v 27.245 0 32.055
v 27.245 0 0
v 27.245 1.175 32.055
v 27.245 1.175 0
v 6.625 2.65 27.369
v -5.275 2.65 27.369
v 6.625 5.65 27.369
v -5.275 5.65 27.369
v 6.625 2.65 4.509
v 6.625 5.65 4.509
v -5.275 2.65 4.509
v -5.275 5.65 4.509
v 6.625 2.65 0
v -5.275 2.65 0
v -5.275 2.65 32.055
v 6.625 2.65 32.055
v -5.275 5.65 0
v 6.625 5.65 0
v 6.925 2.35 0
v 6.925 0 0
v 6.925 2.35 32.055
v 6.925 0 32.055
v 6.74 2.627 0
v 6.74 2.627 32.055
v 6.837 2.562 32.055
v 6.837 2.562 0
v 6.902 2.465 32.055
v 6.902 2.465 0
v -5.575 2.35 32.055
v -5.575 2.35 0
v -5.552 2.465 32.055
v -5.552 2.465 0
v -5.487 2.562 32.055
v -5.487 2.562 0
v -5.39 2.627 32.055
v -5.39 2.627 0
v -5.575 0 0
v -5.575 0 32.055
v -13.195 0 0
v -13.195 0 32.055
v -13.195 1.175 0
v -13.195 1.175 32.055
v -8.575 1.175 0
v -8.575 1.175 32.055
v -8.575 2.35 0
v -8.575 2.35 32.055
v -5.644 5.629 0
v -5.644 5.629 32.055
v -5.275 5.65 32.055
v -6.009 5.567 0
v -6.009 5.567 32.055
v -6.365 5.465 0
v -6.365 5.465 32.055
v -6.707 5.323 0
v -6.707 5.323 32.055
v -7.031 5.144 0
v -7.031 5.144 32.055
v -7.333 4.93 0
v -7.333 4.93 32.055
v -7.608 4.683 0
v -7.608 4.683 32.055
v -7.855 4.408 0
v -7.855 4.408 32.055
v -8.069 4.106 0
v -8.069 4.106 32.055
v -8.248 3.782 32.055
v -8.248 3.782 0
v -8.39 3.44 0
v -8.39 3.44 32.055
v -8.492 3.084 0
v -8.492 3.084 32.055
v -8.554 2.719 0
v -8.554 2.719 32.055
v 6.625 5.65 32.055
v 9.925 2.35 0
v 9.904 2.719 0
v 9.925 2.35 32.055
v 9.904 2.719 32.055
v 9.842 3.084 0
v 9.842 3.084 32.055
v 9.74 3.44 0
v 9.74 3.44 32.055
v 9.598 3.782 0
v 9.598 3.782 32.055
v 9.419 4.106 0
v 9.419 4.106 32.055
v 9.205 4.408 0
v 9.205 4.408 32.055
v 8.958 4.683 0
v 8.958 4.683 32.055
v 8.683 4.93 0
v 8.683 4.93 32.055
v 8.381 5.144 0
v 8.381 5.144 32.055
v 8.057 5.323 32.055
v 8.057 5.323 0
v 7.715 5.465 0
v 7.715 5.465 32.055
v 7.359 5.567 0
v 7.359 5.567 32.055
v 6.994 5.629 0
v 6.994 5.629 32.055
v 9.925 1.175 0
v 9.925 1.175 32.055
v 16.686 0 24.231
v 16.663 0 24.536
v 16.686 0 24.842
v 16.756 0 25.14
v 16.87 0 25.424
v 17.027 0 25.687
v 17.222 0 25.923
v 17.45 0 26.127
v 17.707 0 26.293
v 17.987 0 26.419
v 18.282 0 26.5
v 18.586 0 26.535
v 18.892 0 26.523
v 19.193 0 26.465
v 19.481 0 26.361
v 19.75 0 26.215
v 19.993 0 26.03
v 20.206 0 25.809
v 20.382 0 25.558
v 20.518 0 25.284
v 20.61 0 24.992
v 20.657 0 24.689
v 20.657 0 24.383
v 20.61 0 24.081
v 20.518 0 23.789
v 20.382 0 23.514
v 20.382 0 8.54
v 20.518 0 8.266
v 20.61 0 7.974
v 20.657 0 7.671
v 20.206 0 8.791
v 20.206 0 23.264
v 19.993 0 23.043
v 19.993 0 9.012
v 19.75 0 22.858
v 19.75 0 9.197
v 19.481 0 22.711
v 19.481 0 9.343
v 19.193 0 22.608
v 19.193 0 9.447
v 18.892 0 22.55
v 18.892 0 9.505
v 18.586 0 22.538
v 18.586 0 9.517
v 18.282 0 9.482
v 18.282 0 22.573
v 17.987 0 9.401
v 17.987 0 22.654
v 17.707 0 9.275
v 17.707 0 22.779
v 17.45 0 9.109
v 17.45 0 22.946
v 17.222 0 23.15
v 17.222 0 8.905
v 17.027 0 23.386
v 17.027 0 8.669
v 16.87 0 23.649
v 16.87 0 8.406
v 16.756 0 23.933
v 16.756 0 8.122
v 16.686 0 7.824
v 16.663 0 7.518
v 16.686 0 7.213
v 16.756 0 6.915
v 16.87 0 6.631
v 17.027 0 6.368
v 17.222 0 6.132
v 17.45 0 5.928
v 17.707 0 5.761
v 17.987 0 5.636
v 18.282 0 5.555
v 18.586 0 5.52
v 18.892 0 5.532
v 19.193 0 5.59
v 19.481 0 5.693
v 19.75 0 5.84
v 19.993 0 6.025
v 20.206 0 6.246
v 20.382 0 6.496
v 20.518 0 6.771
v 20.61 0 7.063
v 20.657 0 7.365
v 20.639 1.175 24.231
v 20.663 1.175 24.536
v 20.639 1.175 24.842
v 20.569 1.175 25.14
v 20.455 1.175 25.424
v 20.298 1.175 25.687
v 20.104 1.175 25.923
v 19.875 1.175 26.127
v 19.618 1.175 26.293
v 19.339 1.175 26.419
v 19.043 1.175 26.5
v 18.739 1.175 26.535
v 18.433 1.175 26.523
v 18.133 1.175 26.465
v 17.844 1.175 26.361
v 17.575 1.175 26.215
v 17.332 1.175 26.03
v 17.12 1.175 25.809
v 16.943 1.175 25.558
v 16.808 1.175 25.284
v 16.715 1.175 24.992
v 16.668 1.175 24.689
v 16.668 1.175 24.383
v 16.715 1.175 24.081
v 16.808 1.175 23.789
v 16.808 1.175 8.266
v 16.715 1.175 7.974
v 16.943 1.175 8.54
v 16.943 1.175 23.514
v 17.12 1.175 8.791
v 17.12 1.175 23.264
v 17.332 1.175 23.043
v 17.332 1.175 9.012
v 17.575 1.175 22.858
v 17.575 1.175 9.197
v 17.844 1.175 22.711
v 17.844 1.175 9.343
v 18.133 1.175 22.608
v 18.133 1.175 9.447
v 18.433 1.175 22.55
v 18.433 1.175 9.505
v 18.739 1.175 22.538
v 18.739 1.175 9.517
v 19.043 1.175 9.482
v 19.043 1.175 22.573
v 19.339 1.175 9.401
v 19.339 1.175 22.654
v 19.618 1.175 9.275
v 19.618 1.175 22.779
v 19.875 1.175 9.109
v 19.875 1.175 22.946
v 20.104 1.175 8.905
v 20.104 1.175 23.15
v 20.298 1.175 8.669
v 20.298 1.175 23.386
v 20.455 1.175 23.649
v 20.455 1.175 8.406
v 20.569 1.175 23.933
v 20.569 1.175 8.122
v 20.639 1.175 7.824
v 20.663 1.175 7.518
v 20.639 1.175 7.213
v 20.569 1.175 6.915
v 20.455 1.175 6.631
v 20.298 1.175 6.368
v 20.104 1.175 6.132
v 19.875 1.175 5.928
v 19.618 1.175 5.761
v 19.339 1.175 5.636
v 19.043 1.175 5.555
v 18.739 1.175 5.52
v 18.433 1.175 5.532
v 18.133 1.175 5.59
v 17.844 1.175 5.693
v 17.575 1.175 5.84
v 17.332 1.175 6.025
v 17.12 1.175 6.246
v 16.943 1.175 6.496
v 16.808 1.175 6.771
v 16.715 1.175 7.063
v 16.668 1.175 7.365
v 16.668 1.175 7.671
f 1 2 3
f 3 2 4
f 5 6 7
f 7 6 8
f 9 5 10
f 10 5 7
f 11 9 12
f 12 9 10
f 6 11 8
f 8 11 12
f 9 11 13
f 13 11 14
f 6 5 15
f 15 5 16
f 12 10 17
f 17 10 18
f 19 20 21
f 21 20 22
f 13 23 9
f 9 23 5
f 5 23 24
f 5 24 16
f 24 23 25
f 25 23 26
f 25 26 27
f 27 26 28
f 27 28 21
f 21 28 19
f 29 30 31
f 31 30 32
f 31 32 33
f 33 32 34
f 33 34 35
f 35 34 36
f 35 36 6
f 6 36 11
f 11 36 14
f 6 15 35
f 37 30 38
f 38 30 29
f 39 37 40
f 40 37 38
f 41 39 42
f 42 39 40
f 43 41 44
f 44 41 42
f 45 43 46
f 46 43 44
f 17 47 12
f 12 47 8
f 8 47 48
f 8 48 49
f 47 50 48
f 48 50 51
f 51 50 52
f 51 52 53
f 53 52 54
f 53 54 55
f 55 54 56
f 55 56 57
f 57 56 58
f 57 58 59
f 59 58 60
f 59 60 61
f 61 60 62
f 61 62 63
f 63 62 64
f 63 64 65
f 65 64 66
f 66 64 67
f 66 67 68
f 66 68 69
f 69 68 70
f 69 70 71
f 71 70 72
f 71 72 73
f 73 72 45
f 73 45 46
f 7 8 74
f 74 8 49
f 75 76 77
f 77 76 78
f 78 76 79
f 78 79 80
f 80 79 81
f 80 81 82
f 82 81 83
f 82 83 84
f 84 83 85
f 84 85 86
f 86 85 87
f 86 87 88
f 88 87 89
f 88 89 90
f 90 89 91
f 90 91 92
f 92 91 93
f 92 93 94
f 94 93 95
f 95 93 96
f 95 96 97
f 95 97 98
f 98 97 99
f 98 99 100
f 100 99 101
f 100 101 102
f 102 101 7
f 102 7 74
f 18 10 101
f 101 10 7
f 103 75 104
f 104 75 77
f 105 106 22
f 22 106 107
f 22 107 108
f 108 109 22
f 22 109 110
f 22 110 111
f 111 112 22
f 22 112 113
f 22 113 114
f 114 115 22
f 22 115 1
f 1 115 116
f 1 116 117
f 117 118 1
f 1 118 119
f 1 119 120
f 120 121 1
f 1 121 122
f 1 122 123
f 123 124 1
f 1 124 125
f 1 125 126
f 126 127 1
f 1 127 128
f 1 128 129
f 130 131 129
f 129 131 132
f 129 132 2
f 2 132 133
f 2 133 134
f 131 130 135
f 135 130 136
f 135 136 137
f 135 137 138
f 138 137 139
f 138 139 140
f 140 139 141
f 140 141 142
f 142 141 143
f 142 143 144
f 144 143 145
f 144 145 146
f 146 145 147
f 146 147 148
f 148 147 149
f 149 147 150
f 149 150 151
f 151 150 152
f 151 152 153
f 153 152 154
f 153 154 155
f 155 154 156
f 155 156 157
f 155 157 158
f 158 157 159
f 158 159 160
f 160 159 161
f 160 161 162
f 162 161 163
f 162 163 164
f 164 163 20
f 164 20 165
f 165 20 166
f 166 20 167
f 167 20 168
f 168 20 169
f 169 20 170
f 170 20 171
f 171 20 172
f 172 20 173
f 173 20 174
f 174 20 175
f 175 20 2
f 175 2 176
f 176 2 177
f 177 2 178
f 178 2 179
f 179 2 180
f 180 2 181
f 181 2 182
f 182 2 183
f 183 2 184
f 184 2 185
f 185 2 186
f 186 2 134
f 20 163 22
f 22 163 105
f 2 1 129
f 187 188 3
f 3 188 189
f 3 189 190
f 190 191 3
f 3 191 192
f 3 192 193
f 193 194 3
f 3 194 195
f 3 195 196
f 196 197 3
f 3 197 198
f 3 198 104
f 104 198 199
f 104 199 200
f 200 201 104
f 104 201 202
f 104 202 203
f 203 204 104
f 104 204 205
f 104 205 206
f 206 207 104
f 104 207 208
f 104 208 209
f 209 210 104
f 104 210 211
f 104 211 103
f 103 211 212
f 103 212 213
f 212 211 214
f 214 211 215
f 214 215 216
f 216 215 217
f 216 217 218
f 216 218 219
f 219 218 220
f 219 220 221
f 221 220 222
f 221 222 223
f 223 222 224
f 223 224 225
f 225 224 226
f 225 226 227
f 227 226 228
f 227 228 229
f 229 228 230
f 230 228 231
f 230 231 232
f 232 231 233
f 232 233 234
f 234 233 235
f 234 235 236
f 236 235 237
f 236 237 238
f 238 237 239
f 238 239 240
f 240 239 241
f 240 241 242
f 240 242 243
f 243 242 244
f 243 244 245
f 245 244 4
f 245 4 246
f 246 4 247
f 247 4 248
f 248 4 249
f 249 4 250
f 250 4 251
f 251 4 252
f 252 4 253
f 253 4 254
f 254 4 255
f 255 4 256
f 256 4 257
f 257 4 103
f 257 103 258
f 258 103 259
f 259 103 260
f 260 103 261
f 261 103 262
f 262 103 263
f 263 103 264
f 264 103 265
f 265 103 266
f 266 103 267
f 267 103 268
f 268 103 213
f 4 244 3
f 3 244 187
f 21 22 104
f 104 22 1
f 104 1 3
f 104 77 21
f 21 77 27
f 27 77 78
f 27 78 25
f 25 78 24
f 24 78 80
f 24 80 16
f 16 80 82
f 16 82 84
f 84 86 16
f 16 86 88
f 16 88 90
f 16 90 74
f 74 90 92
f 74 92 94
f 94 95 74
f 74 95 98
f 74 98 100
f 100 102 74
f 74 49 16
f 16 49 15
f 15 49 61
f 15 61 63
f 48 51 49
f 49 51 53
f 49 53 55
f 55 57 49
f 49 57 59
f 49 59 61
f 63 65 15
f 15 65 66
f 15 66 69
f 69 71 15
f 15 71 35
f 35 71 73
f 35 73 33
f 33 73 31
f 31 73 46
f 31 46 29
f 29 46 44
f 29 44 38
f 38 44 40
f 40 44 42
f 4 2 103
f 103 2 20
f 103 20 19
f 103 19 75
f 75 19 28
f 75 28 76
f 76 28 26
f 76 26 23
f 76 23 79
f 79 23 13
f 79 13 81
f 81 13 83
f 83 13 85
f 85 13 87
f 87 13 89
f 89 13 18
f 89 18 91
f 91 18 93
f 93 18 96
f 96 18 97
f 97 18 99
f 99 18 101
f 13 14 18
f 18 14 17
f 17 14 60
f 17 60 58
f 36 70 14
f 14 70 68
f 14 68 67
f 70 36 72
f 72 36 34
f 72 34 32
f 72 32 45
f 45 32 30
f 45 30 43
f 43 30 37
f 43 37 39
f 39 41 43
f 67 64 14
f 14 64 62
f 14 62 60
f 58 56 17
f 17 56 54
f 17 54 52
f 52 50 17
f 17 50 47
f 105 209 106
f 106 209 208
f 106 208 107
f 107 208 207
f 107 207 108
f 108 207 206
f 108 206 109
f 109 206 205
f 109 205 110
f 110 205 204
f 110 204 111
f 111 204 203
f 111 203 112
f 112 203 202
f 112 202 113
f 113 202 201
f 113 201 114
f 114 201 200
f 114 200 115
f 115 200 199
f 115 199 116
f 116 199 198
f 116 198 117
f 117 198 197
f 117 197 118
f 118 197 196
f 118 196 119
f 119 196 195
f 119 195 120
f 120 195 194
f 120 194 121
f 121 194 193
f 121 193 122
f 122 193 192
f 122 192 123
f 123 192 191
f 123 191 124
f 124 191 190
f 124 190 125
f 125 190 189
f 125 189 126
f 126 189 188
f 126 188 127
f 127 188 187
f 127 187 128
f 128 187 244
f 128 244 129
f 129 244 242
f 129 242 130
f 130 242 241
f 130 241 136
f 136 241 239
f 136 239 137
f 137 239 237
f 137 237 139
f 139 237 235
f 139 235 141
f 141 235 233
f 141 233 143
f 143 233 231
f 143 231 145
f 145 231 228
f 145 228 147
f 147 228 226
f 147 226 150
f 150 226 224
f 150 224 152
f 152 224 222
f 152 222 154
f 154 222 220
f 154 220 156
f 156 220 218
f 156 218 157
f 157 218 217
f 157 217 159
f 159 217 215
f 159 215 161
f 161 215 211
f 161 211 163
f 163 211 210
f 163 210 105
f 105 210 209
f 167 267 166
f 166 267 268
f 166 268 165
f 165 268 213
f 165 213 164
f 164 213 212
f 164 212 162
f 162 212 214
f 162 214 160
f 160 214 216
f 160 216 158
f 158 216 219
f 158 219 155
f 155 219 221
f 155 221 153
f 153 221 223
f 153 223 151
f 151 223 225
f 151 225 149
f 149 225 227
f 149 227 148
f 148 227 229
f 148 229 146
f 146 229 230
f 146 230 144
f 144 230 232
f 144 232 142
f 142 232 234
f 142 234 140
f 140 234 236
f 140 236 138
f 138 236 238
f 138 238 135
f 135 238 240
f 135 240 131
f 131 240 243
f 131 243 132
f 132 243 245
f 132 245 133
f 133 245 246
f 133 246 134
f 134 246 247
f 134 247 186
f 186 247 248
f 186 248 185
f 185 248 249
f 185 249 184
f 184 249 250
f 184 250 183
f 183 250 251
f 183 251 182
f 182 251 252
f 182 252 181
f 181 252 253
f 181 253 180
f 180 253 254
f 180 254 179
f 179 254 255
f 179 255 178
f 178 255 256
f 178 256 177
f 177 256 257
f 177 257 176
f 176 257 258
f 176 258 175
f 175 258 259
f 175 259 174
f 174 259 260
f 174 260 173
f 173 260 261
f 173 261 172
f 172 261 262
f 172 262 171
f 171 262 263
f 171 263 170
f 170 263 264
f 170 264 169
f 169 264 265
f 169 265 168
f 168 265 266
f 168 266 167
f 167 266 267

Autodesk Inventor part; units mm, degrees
ref_plane "YZ Plane" through (0, 0, 0) normal (1, 0, 0) x (0, 1, 0)
ref_plane "XZ Plane" through (0, 0, 0) normal (0, 1, 0) x (-1, 0, 0)
ref_plane "XY Plane" through (0, 0, 0) normal (0, 0, 1) x (1, 0, 0)
sketch "Sketch1" plane through (0, 0, 0) normal (0, 0, 1) x (1, 0, 0)
  line L0 (-5.575, 0) -> (6.925, 0)
  line L1 (6.925, 2.35) -> (6.925, 0)
  line L2 (-5.575, 2.35) -> (-5.575, 0)
  line L3 (-5.275, 2.65) -> (6.625, 2.65)
  arc A0 (-5.275, 2.65) -> (-5.575, 2.35) centre (-5.275, 2.35) ccw
  arc A1 (6.925, 2.35) -> (6.625, 2.65) centre (6.625, 2.35) ccw
  line L4 (-5.575, 0) -> (6.925, 0)
  line L5 (-8.575, 0) -> (-8.575, 2.35)
  arc A2 (-5.275, 5.65) -> (-8.575, 2.35) centre (-5.275, 2.35) ccw
  line L6 (-5.275, 5.65) -> (6.625, 5.65)
  arc A3 (9.925, 2.35) -> (6.625, 5.65) centre (6.625, 2.35) ccw
  line L7 (9.925, 2.35) -> (9.925, 0)
  line L8 (-8.575, 0) -> (9.925, 0)
  line L9 (6.925, 1.175) -> (14.545, 1.175)
  line L10 (14.545, 1.175) -> (14.545, 0)
  line L11 (14.545, 0) -> (6.925, 0)
  line L12 (6.925, 1.175) -> (6.925, 0)
  line L13 (-5.575, 1.175) -> (-13.195, 1.175)
  line L14 (-5.575, 1.175) -> (2.045, 1.175) construction
  line L15 (-13.195, 1.175) -> (-13.195, 0)
  line L16 (-13.195, 0) -> (14.545, 0)
  point P0 (0, 0)
  point P1 (-8.575, 1.175)
  point P2 (-5.275, 2.65)
  point P3 (9.925, 1.175)
  dimension "d0" = 3
  dimension "d1" = 3
  dimension "d2" = 7.62
  dimension "d3" = 7.62
  dimension "d4" = 180
extrude "Extrusion1" add sketch "Sketch1" along normal blind 32.0548 contours L8 L5 L13 L2 | L1 L9 L7 L8 | L13 L5 A2 L6 A3 L7 L9 L1 A1 L3 A0 L2 | L16 L15 L13 L5 | L7 L9 L10 L11
sketch "Sketch2" plane through (-5.275, 5.65, 0) normal (0, 1, 0) x (1, 0, 0)
  line L0 (0, -32.0548) -> (11.9, -32.0548) projected
  line L1 (5.95, -32.0548) -> (5.95, -15.939)
  line L2 (0, 0) -> (0, -32.0548) projected
  line L3 (0, -4.509) -> (11.9, -4.509)
  line L4 (11.9, -4.509) -> (11.9, -27.369)
  line L5 (11.9, -27.369) -> (0, -27.369)
  line L6 (0, -27.369) -> (0, -4.509)
  line L7 (0, -4.509) -> (11.9, -27.369) construction
  line L8 (11.9, -4.509) -> (0, -27.369) construction
  line L9 (11.9, 0) -> (0, 0) projected
  dimension "d7" = 22.86
extrude "Extrusion2" cut sketch "Sketch2" against normal blind 32.0548 contours L2 L3 L4 L5
sketch "Sketch3" plane through (14.545, 0, 0) normal (1, 0, 0) x (0, 0, -1)
  line L0 (0, 0) -> (0, 1.175) projected
  line L1 (0, 1.175) -> (-32.0548, 1.175) projected
  line L2 (-32.0548, 0) -> (-32.0548, 1.175) projected
  line L3 (0, 0) -> (-32.0548, 0) projected
extrude "Extrusion3" add sketch "Sketch3" along normal blind 12.7
sketch "Sketch4" plane through (9.925, 1.175, 32.0548) normal (0, 1, 0) x (1, 0, 0)
  line L0 (0, 32.0548) -> (17.32, 32.0548) projected
  line L1 (0, 32.0548) -> (0, 0) projected
  line L2 (0, 0) -> (17.32, 0) projected
  line L3 (17.32, 32.0548) -> (17.32, 0) projected
  line L4 (0, 0) -> (8.7376, 0)
  line L5 (-3, 0) -> (17.32, 0) projected
  line L6 (8.7376, 0) -> (8.7376, 7.5184)
  circle A0 centre (8.7376, 7.5184) radius 2
  line L7 (0, 32.0548) -> (8.7376, 32.0548)
  line L8 (-3, 32.0548) -> (17.32, 32.0548) projected
  line L9 (8.7376, 32.0548) -> (8.7376, 24.5364)
  circle A1 centre (8.7376, 24.5364) radius 2
  point P0 (-9.925, 32.0548)
  dimension "d12" = 8.7376
  dimension "d13" = 7.5184
  dimension "d14" = 4
  dimension "d15" = 8.7376
  dimension "d16" = 7.5184
  dimension "d17" = 90
  dimension "d18" = 4
extrude "Extrusion4" cut sketch "Sketch4" against normal up to surface (1.175 mm away) contours A0 | A1
properties part number "Servo Holder Cap"
